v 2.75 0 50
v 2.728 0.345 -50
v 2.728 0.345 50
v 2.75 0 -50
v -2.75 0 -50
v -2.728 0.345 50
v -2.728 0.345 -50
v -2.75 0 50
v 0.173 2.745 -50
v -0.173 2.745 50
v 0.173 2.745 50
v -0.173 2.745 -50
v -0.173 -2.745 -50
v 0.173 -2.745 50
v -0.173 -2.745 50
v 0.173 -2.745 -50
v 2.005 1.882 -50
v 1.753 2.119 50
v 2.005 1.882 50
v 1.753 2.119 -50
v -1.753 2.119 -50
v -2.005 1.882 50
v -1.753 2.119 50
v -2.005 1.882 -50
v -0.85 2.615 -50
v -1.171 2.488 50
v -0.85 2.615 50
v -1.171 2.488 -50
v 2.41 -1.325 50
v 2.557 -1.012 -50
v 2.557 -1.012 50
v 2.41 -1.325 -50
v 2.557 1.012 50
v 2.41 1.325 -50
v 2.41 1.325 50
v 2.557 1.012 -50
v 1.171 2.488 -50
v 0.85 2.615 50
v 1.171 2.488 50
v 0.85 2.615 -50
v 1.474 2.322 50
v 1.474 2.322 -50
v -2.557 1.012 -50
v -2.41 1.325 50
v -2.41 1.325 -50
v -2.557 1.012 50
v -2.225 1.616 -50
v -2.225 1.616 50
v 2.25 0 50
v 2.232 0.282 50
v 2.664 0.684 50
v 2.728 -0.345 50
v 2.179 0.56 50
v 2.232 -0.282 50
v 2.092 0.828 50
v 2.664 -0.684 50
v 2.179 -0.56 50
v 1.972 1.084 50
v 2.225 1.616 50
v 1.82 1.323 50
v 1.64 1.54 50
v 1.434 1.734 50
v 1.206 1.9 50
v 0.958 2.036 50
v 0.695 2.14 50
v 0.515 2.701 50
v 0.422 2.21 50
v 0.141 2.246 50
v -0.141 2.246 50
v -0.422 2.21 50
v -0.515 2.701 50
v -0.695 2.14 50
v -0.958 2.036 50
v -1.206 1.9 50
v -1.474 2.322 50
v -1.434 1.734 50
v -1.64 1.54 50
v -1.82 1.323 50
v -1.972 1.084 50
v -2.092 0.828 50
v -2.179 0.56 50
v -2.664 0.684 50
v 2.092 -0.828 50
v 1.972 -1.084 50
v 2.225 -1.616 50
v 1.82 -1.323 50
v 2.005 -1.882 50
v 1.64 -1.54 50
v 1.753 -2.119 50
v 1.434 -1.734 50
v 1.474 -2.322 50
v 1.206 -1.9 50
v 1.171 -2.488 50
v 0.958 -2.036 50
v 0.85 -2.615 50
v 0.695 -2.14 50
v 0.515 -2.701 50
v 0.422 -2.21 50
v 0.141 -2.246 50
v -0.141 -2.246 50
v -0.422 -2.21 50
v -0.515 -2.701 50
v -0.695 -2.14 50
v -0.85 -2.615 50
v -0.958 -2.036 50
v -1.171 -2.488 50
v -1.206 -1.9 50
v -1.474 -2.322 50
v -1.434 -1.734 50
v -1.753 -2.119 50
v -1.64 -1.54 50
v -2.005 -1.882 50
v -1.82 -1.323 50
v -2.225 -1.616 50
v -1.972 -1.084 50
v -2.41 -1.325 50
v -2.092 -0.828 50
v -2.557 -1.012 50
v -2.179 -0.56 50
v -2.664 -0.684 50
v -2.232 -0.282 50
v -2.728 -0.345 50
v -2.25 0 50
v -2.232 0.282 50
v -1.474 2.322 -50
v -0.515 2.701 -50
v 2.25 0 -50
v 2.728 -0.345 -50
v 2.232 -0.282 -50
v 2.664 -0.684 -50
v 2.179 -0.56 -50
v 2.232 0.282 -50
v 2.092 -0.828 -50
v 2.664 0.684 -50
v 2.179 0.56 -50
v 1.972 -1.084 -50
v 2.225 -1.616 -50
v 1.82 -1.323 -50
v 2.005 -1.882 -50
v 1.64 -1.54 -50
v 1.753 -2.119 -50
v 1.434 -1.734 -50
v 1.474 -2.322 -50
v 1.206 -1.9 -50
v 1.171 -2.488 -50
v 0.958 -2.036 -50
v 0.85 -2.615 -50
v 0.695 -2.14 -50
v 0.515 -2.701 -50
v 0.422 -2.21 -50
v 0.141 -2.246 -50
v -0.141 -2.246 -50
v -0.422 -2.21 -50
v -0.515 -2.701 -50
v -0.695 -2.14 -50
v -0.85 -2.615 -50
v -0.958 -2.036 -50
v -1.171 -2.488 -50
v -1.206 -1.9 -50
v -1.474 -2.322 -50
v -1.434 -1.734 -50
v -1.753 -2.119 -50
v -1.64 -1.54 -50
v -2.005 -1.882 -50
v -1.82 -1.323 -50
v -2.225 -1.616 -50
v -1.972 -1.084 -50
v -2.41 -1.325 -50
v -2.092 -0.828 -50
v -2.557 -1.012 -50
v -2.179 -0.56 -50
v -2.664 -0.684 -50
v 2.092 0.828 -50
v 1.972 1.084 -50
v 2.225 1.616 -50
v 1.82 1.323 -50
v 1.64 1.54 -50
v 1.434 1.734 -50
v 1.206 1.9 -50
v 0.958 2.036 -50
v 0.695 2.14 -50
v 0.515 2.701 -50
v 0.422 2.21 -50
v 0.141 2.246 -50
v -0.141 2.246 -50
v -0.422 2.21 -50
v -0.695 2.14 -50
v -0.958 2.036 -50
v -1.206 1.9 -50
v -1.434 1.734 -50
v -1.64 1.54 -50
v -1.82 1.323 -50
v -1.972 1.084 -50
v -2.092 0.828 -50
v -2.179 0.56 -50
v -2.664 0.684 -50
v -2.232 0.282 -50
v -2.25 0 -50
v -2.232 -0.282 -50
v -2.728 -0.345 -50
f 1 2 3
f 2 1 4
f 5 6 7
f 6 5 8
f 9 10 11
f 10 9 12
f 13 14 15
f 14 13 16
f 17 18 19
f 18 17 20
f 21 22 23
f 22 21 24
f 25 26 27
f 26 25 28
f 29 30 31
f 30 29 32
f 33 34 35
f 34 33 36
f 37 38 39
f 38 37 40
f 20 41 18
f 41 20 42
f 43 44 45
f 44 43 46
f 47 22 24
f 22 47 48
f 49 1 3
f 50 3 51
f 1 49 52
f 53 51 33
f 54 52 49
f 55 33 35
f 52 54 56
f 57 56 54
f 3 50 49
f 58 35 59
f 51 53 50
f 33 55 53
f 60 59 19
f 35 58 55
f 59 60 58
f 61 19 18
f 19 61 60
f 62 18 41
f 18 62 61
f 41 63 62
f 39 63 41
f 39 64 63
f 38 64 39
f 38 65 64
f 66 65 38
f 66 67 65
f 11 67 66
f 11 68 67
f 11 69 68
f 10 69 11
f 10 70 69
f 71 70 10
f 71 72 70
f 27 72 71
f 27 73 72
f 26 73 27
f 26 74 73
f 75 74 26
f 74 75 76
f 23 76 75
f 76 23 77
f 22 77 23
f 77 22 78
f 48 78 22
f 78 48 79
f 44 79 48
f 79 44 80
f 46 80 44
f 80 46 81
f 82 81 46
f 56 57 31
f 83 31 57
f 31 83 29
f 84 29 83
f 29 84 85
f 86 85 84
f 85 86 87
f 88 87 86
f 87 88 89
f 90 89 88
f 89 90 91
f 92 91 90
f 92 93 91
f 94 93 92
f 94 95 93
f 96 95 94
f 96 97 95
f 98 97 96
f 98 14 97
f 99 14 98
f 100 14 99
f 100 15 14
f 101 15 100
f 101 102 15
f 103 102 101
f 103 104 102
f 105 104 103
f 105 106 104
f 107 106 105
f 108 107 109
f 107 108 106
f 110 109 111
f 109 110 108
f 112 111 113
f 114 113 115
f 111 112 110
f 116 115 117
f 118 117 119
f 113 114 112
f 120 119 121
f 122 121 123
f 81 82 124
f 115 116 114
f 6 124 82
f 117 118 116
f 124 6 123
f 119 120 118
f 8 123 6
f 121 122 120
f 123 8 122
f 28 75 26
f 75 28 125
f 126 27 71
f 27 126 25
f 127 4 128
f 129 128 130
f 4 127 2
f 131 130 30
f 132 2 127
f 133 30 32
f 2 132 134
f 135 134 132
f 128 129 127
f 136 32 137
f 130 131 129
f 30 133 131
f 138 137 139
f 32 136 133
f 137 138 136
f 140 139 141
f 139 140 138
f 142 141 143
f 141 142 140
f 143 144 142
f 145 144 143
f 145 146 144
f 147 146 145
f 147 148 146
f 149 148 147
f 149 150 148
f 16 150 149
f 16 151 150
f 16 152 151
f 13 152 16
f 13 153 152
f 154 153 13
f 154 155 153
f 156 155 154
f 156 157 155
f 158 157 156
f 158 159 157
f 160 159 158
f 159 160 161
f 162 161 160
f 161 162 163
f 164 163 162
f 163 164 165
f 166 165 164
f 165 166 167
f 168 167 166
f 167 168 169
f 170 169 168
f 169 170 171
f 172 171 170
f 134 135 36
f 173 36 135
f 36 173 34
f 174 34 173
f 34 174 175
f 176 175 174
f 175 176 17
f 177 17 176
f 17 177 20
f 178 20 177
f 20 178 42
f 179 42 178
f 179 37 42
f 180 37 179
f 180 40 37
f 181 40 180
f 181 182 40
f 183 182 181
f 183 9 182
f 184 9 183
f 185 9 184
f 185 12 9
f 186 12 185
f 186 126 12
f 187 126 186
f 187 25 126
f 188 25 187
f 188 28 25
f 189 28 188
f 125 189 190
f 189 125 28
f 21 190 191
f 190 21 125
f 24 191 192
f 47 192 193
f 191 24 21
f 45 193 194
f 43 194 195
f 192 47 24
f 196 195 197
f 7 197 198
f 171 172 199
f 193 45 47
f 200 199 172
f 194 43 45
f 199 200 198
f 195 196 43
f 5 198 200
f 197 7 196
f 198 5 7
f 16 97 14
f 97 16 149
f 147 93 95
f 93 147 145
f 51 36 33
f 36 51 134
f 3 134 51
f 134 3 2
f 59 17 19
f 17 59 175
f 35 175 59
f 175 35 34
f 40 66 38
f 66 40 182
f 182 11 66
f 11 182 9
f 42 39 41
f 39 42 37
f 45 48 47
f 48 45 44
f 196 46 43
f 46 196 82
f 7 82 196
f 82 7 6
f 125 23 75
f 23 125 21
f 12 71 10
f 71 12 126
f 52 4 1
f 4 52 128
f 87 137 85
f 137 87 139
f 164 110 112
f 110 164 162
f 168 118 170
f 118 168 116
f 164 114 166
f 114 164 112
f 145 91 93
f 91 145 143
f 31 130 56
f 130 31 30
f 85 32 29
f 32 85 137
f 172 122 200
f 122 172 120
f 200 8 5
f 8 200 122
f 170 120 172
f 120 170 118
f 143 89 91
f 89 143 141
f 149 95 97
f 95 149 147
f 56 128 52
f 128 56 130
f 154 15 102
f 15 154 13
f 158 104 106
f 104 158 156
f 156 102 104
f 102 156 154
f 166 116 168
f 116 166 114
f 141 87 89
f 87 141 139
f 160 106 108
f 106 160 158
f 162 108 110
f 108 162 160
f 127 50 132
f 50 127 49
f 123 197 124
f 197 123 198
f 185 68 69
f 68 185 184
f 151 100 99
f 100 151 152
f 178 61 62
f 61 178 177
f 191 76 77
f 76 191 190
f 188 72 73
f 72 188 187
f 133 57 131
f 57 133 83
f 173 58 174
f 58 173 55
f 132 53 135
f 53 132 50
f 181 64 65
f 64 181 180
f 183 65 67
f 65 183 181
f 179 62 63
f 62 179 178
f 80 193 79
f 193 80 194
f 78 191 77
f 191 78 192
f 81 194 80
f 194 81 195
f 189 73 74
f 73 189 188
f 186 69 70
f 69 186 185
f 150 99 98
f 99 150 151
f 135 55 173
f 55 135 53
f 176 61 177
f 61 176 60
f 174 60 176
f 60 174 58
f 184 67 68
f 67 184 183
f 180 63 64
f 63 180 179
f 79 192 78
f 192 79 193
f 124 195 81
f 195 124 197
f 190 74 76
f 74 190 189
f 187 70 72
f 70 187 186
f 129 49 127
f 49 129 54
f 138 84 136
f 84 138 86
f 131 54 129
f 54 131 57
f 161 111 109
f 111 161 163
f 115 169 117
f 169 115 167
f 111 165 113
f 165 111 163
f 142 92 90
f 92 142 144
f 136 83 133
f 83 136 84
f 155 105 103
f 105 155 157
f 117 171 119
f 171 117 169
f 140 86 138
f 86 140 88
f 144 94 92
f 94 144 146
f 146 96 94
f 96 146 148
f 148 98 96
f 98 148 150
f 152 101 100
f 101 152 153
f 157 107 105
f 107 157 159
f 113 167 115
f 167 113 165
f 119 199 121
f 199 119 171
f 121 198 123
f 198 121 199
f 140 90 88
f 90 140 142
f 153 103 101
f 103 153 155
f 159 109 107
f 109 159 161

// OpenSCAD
$fn = 50;


difference() {
	union() {
		translate(v = [0, 0, -50.0000000000]) {
			cylinder(h = 100, r = 2.7500000000);
		}
	}
	union() {
		translate(v = [0, 0, -100.0000000000]) {
			cylinder(h = 200, r = 2.2500000000);
		}
	}
}
